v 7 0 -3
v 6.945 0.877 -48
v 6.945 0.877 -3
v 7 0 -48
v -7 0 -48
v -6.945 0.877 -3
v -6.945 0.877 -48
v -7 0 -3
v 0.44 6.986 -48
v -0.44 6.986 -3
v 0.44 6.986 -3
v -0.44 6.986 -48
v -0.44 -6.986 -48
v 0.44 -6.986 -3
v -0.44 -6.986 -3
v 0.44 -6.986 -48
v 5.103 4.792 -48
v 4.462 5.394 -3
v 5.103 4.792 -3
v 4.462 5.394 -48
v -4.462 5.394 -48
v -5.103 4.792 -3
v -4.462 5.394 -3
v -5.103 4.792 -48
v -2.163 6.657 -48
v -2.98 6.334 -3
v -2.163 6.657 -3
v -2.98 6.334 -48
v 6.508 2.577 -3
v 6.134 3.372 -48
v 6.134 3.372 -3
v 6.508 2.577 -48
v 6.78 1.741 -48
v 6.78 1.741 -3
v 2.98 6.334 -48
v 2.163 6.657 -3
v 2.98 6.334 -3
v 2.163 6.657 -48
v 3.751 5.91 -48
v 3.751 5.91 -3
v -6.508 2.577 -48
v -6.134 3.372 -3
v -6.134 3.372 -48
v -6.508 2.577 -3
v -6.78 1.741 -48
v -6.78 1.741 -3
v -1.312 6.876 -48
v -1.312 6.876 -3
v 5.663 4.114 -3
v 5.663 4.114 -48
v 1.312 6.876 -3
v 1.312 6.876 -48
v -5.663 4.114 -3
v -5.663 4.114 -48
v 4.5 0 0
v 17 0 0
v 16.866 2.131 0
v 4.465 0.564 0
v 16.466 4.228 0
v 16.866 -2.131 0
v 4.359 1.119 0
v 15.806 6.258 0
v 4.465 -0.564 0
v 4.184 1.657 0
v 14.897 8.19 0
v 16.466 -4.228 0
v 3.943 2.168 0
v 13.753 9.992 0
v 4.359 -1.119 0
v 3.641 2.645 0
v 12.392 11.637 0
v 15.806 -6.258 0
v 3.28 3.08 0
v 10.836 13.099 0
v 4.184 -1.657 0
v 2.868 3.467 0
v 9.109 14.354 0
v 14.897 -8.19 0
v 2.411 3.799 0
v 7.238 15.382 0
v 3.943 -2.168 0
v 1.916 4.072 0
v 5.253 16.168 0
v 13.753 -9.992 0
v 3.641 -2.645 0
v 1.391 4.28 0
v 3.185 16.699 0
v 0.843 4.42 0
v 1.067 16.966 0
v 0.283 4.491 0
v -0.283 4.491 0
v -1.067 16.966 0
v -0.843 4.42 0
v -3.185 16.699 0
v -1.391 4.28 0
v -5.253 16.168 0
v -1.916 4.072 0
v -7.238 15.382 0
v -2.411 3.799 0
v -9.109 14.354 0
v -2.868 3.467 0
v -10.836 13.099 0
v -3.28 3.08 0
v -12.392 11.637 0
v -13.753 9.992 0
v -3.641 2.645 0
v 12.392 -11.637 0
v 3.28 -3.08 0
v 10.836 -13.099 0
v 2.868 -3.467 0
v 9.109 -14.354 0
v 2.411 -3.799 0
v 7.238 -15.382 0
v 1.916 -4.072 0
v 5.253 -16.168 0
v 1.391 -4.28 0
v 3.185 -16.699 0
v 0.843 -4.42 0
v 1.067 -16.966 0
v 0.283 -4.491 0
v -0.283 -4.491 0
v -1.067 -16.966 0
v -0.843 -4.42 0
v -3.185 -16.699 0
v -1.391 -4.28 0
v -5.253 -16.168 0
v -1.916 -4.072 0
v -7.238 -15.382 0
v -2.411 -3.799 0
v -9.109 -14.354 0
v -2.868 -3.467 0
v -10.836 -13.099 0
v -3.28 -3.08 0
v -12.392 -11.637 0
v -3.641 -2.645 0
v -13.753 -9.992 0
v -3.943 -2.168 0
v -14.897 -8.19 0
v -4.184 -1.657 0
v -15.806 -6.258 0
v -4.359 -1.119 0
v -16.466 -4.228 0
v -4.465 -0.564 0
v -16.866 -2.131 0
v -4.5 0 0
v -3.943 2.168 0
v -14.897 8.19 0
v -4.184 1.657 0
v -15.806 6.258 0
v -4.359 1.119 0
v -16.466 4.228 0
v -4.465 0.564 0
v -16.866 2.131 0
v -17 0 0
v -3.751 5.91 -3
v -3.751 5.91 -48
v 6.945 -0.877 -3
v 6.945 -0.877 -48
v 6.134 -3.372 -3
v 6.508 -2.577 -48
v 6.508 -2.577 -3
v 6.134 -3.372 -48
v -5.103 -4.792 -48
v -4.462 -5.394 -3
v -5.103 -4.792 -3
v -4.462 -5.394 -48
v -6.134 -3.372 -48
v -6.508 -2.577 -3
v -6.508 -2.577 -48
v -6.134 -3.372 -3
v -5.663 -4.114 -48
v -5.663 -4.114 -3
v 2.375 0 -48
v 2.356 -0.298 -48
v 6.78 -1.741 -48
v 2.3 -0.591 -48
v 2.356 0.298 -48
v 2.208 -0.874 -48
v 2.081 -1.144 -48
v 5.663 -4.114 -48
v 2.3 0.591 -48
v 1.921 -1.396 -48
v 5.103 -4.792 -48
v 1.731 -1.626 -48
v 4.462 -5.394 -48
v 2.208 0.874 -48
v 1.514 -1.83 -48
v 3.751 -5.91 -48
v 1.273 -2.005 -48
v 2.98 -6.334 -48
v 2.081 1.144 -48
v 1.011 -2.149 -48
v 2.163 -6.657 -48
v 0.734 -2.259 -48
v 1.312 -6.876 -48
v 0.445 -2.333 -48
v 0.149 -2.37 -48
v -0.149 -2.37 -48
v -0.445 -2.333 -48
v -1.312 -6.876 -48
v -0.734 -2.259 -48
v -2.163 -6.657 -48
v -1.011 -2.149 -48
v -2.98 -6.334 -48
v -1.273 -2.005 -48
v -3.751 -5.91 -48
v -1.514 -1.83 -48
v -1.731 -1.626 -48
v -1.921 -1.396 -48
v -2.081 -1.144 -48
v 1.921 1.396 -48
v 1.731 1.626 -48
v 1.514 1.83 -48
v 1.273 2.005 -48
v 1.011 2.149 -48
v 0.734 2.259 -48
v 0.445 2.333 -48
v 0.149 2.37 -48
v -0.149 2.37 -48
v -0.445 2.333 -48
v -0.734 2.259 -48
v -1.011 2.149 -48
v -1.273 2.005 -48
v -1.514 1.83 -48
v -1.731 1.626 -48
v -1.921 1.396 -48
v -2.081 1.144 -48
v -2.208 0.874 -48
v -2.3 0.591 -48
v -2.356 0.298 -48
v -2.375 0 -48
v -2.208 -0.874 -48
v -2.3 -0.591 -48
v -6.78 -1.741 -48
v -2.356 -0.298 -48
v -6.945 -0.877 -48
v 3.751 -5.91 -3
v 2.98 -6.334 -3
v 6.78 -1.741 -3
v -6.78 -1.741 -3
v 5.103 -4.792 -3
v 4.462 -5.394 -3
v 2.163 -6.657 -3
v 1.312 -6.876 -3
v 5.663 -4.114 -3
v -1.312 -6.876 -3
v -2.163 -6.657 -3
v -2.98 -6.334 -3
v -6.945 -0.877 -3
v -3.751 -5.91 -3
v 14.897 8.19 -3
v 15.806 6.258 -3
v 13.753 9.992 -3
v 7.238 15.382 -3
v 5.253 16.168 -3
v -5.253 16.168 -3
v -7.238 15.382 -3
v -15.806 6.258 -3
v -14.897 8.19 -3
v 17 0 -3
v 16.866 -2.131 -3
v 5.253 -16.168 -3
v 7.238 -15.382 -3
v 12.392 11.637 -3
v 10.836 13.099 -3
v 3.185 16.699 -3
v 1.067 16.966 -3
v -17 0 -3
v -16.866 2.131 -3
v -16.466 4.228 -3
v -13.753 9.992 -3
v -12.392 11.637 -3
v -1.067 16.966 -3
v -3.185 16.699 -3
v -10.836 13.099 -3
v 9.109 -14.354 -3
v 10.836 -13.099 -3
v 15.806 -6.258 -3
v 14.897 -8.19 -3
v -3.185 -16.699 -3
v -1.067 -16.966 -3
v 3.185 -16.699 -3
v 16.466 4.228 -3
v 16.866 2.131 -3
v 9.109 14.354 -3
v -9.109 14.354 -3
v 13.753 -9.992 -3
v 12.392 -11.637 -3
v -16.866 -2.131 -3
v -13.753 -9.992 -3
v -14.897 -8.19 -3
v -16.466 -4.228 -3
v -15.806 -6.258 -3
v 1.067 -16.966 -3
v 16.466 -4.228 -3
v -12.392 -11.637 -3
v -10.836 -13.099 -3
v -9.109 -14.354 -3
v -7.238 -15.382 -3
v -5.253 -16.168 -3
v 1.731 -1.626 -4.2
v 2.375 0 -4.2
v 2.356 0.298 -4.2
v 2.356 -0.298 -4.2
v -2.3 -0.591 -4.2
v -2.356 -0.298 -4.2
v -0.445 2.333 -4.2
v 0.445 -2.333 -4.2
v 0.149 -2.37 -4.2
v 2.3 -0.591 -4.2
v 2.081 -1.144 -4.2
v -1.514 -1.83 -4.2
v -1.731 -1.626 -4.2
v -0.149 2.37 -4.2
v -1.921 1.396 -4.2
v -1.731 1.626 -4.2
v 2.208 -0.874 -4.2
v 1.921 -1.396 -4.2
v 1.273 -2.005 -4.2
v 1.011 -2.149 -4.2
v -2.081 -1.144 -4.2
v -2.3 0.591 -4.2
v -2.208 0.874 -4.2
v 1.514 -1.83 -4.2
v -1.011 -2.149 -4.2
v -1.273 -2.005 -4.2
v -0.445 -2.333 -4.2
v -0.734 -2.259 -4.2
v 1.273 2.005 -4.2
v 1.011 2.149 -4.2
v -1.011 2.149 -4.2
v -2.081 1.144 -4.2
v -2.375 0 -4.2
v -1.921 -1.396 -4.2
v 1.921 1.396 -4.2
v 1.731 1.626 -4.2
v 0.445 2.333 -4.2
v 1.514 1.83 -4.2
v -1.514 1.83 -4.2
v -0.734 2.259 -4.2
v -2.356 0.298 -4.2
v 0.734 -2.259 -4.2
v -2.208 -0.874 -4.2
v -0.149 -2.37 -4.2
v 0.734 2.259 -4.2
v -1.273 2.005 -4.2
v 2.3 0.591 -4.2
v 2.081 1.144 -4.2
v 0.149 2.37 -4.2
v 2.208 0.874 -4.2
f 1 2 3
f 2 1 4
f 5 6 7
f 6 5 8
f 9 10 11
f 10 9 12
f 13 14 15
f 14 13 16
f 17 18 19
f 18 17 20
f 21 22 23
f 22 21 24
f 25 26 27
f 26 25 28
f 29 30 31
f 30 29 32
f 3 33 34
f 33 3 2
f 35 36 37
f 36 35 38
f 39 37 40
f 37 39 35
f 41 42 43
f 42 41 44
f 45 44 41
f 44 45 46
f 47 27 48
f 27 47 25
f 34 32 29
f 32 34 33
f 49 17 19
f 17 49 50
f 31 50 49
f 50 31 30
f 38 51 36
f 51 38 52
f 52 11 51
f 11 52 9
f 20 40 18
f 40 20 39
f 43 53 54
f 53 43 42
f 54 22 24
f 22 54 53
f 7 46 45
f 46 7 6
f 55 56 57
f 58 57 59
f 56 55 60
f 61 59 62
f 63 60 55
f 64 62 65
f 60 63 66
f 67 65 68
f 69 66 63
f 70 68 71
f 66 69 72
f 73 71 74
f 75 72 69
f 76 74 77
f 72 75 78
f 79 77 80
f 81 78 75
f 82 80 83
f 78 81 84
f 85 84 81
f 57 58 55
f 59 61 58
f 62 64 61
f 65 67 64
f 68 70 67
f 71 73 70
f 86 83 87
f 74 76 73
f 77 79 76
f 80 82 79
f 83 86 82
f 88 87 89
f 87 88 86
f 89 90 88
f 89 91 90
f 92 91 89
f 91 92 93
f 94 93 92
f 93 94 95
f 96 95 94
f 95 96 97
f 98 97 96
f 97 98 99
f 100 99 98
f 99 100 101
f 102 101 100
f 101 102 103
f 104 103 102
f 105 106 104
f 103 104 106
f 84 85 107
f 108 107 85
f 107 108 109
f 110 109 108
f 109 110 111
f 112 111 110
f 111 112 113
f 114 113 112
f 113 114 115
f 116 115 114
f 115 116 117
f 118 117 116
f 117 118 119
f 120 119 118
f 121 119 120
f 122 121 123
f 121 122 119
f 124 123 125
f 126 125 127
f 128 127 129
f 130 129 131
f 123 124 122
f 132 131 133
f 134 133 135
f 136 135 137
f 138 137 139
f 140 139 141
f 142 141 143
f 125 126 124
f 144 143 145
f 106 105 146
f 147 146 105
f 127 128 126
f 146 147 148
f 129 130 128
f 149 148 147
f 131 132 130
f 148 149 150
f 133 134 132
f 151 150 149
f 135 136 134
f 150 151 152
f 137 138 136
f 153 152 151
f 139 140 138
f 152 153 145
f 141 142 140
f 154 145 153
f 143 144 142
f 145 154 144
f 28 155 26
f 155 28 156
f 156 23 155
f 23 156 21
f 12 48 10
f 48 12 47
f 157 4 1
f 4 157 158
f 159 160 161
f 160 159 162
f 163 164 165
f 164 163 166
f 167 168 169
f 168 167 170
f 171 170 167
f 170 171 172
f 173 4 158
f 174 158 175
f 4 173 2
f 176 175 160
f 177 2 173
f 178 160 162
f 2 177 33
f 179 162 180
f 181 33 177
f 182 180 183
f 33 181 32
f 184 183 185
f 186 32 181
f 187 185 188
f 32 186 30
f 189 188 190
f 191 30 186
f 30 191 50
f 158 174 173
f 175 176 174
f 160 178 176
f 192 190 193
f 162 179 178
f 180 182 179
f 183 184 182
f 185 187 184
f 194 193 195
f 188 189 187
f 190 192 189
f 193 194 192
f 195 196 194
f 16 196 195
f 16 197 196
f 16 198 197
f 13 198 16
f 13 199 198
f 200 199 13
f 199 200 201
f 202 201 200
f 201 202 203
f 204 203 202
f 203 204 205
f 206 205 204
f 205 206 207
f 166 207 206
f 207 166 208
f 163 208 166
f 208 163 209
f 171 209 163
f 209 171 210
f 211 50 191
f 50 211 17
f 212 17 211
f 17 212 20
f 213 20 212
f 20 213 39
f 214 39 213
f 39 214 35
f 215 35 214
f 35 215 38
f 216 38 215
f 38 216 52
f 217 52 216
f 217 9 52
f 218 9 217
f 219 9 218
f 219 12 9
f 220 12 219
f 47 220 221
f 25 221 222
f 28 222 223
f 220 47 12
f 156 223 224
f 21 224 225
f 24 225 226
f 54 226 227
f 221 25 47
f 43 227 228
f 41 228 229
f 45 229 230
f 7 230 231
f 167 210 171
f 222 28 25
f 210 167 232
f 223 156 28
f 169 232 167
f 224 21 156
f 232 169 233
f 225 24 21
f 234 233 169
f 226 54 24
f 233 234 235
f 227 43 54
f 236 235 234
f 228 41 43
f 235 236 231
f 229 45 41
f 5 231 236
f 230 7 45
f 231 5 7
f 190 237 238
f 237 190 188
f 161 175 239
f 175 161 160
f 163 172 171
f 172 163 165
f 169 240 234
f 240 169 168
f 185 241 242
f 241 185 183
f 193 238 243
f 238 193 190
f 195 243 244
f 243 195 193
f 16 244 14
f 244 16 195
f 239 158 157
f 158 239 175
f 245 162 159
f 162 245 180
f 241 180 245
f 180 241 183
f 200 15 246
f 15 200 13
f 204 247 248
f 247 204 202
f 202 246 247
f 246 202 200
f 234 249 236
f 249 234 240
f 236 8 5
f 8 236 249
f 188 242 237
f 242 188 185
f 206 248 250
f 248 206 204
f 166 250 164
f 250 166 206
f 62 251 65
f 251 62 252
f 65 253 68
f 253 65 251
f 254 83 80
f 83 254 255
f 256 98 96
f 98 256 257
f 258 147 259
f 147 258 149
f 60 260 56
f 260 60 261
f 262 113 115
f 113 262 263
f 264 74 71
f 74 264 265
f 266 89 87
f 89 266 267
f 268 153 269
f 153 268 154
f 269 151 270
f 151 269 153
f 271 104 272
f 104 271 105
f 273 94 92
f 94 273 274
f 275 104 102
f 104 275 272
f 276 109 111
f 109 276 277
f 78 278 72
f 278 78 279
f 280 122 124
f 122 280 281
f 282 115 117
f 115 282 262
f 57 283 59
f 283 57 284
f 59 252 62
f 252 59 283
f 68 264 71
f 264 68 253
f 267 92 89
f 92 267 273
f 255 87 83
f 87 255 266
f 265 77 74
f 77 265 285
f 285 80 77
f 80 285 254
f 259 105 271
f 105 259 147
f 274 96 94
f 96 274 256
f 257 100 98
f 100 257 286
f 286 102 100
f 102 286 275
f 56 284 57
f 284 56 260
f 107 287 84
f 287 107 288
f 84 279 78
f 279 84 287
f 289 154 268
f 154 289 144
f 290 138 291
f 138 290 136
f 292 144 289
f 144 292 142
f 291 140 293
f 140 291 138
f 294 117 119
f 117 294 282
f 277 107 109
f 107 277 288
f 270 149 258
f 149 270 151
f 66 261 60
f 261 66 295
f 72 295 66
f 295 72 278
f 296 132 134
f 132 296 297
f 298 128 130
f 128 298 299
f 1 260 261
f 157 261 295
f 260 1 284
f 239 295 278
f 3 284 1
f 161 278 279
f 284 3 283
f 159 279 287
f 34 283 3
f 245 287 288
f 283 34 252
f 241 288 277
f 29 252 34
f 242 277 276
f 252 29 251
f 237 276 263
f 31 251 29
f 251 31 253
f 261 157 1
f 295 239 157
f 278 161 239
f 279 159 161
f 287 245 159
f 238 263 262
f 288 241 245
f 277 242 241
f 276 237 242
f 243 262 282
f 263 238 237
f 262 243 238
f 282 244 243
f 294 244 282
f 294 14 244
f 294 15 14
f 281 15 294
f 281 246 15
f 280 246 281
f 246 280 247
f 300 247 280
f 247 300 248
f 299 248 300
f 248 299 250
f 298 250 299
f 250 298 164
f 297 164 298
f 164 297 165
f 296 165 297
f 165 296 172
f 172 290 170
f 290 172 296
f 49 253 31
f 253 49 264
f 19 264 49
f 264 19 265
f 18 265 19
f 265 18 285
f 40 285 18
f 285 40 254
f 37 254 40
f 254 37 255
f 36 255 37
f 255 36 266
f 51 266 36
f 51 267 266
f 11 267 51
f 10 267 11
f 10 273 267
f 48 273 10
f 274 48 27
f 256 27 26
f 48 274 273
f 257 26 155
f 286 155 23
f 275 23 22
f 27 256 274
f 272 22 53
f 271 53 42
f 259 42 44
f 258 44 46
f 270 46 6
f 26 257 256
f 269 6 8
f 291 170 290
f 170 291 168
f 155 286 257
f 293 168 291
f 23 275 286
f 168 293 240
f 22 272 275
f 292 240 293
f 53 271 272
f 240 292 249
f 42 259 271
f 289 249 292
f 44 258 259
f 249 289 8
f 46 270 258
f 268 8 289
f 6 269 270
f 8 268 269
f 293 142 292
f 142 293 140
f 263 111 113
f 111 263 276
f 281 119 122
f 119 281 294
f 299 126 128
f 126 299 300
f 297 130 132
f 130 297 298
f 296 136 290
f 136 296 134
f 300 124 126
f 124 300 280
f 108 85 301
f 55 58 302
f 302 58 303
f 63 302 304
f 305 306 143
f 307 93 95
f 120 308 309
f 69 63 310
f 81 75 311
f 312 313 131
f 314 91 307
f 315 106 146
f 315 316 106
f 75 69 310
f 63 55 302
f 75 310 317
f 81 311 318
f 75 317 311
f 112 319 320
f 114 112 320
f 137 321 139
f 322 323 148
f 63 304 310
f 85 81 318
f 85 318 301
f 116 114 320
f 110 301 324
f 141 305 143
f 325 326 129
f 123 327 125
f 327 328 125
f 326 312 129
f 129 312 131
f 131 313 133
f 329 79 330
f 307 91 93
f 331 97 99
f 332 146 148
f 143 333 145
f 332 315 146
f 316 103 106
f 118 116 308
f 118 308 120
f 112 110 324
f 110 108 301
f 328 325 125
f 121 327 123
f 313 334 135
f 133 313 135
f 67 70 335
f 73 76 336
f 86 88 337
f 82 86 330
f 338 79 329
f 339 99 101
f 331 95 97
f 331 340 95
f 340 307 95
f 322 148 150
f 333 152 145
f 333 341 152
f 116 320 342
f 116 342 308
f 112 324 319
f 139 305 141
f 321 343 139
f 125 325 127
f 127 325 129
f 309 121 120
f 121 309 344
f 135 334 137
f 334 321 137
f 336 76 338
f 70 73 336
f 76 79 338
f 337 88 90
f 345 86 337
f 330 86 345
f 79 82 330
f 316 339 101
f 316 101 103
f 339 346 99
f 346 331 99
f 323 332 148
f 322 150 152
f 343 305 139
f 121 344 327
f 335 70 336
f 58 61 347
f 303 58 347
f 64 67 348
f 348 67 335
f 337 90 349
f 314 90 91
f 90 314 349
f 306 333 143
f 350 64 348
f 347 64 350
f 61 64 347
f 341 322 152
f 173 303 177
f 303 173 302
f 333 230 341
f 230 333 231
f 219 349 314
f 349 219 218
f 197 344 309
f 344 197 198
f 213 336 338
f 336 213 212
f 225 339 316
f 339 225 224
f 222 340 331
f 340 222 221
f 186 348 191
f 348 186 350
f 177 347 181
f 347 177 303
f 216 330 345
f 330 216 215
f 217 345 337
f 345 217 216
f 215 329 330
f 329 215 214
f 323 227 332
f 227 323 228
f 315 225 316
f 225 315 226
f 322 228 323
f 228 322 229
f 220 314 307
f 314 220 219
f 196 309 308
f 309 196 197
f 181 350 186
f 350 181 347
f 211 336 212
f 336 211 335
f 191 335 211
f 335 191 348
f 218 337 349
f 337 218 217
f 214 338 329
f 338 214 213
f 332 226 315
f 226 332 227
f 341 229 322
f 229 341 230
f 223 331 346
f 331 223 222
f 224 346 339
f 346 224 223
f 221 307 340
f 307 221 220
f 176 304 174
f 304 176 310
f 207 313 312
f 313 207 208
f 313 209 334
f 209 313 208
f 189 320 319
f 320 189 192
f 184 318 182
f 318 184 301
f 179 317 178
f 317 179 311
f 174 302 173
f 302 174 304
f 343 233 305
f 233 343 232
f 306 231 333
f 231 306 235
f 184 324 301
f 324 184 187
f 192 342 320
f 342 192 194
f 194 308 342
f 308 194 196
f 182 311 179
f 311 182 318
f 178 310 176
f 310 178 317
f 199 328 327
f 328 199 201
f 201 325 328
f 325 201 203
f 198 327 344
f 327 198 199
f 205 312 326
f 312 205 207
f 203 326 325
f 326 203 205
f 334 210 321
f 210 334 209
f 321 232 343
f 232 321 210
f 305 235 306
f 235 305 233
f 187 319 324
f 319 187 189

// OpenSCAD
$fn = 50;


difference() {
	union() {
		translate(v = [0, 0, -48.0000000000]) {
			cylinder(h = 48, r = 7.0000000000);
		}
		translate(v = [0, 0, -3.0000000000]) {
			cylinder(h = 3, r = 17.0000000000);
		}
	}
	union() {
		translate(v = [0, 0, 0]) {
			rotate(a = [0, 0, 0]) {
				difference() {
					union() {
						#translate(v = [0, 0, -48.0000000000]) {
							cylinder(h = 48, r = 2.2500000000);
						}
						#translate(v = [0, 0, -4.2000000000]) {
							cylinder(h = 4.2000000000, r1 = 2.3750000000, r2 = 4.5000000000);
						}
						#translate(v = [0, 0, -48.0000000000]) {
							cylinder(h = 48, r = 2.3750000000);
						}
						#translate(v = [0, 0, -48.0000000000]) {
							cylinder(h = 48, r = 2.2500000000);
						}
					}
					union();
				}
			}
		}
	}
}
